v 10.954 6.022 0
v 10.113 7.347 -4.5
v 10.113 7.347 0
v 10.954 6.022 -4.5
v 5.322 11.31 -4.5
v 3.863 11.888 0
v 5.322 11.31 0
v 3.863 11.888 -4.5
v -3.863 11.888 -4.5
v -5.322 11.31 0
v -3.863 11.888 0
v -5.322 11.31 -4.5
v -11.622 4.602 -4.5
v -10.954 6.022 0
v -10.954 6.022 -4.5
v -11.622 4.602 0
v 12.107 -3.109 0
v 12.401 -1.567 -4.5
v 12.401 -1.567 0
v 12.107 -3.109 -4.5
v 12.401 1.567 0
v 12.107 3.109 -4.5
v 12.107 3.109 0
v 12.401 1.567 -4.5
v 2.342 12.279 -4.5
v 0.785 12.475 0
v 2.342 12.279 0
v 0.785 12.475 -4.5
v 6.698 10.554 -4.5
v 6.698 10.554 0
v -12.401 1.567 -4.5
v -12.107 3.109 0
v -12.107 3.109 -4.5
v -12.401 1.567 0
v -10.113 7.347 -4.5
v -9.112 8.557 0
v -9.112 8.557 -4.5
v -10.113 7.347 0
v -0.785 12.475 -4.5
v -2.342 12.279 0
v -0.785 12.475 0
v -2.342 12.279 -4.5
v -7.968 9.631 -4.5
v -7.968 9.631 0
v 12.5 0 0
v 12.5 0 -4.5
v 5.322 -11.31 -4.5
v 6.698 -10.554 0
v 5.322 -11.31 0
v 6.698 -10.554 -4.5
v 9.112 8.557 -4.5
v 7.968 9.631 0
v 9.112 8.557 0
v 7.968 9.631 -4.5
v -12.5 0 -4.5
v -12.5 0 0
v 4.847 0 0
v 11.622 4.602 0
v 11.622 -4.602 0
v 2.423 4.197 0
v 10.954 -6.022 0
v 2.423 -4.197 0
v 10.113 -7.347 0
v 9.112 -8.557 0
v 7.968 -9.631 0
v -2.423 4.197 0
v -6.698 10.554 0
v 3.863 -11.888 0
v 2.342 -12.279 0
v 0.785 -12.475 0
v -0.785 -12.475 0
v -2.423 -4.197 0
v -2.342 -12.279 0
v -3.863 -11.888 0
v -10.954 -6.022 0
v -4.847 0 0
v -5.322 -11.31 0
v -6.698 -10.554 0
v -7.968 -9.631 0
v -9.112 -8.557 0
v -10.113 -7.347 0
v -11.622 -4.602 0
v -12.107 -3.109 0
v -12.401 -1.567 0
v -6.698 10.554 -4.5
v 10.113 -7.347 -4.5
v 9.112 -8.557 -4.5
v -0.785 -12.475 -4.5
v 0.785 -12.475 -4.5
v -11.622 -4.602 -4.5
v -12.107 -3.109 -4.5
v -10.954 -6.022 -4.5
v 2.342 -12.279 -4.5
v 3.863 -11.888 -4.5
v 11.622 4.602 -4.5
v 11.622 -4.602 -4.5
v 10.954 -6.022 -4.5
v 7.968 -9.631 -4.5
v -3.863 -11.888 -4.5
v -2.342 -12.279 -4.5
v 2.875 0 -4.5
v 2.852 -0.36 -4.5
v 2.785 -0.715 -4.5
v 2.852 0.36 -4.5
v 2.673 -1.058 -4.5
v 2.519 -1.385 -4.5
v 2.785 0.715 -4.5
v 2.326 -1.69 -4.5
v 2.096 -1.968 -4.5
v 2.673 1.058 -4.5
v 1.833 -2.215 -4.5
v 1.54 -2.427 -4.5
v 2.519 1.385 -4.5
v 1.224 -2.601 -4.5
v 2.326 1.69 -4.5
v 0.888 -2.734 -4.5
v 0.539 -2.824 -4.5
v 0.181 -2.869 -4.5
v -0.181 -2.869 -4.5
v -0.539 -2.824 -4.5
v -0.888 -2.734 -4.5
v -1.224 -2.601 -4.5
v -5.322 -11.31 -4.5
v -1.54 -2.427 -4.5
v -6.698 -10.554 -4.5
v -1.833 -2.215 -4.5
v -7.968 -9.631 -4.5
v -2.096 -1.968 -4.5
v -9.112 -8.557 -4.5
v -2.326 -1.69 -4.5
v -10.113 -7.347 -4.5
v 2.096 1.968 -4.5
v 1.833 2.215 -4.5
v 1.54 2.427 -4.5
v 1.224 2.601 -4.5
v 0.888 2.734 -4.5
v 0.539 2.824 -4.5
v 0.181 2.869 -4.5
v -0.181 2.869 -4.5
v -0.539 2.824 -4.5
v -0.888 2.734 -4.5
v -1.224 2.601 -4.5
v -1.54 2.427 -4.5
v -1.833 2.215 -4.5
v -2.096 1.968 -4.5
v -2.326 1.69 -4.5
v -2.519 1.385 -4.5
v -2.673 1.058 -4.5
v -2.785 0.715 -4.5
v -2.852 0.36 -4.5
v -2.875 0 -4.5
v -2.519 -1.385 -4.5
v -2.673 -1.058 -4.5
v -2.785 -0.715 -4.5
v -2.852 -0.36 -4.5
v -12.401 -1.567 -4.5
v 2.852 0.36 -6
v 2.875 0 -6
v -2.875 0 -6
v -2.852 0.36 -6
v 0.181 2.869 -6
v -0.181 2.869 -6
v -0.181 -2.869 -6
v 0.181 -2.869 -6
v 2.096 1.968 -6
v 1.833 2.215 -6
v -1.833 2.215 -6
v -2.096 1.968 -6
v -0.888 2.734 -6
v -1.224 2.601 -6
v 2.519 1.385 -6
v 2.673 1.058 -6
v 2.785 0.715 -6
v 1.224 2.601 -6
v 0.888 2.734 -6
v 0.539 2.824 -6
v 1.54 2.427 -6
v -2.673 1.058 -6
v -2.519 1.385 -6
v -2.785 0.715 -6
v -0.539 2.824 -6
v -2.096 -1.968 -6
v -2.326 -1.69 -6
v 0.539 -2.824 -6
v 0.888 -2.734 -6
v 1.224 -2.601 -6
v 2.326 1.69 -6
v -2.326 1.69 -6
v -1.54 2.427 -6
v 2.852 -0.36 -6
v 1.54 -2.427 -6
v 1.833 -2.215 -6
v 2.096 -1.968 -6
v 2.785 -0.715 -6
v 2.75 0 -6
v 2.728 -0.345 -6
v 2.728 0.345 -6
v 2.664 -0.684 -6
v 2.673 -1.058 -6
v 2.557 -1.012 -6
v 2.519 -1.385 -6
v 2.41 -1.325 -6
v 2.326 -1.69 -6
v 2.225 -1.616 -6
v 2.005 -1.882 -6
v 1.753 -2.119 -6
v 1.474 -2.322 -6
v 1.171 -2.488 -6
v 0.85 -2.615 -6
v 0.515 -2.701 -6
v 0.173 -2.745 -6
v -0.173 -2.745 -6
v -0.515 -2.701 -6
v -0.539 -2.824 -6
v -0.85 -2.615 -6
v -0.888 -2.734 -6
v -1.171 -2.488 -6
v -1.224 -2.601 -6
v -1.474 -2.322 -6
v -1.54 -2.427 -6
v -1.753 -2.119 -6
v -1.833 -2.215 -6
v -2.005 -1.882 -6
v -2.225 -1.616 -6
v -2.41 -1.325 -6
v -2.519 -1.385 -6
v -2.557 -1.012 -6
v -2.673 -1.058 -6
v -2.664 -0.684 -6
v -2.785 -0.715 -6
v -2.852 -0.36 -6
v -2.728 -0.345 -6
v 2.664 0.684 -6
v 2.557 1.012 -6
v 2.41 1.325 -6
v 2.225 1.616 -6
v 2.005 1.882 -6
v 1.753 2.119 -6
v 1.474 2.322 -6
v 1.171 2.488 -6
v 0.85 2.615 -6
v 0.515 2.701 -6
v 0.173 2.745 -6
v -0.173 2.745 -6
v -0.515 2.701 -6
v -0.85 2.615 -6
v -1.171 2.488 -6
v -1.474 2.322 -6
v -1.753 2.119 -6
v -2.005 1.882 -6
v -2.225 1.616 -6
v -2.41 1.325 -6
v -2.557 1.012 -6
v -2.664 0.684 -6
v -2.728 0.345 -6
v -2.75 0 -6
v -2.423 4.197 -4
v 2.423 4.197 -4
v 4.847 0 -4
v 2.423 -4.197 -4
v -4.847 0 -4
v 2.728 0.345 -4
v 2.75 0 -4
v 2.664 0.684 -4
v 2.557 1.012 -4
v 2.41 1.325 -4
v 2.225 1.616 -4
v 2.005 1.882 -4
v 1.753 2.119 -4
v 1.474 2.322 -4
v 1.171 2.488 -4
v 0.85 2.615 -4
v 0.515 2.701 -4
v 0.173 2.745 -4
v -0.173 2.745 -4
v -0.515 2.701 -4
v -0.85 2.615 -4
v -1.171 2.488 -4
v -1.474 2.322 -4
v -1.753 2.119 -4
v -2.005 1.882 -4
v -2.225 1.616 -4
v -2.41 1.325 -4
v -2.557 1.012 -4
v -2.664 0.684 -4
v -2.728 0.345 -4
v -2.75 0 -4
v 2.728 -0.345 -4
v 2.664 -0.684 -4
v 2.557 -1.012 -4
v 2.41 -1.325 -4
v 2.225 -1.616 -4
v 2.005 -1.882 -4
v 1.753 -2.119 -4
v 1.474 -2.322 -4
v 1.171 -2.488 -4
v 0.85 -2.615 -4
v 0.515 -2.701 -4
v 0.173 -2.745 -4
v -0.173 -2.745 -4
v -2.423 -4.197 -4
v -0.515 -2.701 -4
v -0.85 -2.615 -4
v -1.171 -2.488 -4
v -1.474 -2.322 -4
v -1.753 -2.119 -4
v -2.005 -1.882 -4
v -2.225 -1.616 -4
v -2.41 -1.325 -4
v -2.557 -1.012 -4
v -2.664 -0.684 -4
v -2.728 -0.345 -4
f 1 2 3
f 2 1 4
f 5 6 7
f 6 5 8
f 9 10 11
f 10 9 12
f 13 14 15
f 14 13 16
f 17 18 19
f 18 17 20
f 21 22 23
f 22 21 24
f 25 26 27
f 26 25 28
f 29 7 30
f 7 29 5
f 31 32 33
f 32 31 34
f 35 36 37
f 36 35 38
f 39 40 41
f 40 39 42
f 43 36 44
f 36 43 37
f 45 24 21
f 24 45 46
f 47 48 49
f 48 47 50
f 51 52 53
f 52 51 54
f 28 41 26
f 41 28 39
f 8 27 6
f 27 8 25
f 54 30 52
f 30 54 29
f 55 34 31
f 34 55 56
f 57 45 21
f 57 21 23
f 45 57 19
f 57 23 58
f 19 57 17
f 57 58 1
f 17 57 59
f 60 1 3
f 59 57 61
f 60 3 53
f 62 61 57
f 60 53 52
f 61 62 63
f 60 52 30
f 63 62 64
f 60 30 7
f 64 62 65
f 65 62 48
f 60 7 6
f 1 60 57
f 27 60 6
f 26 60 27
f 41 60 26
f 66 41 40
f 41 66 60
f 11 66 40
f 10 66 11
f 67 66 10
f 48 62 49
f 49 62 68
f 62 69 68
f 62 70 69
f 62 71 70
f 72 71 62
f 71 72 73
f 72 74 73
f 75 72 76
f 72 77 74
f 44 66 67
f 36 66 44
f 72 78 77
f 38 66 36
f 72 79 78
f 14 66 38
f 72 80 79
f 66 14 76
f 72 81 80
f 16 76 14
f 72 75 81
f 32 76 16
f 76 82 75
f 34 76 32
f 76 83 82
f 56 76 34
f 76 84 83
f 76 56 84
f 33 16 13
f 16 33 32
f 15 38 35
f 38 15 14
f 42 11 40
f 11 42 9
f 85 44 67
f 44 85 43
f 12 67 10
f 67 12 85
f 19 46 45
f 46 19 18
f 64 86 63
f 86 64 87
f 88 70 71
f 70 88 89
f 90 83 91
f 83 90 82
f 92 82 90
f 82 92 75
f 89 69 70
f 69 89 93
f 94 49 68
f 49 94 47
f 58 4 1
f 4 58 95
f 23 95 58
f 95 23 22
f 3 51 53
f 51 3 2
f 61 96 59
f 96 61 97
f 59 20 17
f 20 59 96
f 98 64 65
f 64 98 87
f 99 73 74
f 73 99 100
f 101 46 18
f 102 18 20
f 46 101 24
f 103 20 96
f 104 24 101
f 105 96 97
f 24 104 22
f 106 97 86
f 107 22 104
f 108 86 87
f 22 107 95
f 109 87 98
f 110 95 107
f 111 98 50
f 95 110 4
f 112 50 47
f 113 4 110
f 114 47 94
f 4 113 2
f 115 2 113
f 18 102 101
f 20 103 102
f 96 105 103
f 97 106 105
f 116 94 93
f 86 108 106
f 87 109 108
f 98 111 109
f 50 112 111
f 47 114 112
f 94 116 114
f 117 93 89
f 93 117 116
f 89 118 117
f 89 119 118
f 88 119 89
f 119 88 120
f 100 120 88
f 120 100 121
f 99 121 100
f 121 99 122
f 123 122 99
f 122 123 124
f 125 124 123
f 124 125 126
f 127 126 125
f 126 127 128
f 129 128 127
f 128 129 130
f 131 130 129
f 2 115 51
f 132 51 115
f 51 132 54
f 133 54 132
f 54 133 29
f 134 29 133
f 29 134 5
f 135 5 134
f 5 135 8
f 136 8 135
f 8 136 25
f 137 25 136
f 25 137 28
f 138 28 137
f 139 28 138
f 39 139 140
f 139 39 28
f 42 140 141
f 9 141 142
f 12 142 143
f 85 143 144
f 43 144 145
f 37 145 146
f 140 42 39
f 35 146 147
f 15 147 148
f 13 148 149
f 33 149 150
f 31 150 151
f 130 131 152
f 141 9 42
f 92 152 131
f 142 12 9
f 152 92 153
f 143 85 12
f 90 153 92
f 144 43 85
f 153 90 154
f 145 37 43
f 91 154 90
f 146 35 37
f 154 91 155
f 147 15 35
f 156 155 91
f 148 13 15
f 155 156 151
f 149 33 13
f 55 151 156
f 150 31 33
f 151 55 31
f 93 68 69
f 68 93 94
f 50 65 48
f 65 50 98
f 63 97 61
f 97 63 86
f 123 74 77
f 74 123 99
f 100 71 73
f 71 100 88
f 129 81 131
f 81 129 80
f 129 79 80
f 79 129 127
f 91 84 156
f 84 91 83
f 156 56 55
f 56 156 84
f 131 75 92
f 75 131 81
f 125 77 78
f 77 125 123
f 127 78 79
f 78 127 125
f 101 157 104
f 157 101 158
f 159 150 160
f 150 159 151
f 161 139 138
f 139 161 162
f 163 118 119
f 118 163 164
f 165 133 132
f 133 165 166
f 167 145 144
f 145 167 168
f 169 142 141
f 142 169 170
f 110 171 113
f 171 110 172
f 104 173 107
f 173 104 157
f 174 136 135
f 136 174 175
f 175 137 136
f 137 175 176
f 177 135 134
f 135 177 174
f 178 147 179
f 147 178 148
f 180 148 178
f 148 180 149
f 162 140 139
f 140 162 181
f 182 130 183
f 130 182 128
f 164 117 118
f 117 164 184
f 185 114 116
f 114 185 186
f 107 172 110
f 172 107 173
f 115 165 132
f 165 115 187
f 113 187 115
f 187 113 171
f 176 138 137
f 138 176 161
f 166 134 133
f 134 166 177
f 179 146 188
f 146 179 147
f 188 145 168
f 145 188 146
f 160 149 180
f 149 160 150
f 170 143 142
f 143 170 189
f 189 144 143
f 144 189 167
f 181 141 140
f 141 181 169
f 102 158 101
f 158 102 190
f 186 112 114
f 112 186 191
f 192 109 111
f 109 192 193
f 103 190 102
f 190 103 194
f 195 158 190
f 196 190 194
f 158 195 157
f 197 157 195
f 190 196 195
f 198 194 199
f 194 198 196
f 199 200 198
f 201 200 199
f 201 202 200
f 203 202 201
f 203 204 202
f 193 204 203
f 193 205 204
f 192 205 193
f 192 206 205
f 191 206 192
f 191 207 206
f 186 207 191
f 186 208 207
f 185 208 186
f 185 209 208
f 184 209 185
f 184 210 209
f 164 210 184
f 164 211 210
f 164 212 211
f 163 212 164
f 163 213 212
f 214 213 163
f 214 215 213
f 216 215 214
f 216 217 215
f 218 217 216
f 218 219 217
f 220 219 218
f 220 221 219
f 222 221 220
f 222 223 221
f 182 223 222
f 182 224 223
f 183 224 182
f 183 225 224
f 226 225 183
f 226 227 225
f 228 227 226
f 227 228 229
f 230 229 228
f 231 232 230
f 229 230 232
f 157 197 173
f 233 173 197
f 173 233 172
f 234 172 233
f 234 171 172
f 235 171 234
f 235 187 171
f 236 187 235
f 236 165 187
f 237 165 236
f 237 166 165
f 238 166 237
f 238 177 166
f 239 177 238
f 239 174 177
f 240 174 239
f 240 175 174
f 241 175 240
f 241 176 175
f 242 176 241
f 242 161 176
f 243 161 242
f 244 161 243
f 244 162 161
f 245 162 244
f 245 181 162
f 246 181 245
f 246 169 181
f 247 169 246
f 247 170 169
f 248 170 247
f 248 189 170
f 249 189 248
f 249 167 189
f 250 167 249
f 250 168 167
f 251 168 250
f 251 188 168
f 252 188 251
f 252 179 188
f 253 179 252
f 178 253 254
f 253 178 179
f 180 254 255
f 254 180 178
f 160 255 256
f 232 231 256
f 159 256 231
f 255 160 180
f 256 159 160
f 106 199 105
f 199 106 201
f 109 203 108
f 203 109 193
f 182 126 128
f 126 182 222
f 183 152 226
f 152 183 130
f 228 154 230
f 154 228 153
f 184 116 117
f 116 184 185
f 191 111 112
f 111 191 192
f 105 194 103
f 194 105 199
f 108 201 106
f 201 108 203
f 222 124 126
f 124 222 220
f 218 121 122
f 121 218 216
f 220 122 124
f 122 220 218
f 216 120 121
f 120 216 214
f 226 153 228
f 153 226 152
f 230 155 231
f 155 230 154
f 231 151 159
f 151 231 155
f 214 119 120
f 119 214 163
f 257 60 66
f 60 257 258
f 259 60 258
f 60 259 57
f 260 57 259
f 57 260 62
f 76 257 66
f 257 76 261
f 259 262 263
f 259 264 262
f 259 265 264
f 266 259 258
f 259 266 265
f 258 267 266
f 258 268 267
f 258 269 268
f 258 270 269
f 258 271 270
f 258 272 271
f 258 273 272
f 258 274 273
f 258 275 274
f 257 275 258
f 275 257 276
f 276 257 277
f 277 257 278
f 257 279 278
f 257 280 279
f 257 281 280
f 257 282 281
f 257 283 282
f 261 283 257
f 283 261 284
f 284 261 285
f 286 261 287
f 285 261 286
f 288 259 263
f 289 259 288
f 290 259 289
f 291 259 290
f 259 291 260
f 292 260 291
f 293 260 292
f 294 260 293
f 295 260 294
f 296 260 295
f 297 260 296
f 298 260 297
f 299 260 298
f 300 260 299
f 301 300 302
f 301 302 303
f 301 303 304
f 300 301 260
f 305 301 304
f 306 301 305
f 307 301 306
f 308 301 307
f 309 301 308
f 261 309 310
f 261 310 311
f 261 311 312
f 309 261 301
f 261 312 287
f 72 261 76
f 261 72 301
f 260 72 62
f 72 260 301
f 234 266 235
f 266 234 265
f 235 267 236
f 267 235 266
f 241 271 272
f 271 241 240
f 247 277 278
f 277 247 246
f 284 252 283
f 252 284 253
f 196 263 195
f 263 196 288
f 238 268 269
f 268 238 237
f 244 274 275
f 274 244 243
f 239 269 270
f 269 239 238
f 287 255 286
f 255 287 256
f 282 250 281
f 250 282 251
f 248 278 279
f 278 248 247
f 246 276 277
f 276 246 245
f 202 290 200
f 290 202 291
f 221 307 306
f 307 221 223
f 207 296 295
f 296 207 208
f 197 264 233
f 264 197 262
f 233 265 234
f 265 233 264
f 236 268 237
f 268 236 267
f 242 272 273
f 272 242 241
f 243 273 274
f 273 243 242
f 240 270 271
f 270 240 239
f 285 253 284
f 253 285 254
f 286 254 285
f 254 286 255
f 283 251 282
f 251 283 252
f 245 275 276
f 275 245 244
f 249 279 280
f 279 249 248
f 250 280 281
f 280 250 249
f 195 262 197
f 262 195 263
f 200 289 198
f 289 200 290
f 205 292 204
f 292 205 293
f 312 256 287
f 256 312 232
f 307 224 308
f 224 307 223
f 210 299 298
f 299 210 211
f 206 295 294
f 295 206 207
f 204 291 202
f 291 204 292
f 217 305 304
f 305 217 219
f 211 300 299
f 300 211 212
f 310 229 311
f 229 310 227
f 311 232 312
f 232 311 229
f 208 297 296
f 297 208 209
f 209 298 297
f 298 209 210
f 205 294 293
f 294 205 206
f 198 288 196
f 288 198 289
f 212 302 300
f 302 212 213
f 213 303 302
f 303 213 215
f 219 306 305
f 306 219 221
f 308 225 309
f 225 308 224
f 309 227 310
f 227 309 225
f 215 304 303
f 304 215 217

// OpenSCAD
$fn = 50;

difference() {
	union() {
		translate(v = [0, 0, -4.5]) {
			cylinder(h = 4.5, r = 12.5);
		}
		#translate(v = [0, 0, -6.0]) {
			cylinder(h = 6, r = 2.875);
		}
	}
	union() {
		translate(v = [0, 0, 0]) {
			rotate(a = [0, 0, 0]) {
				difference() {
					union() {
						translate(v = [0, 0, -4]) {
							linear_extrude(height = 4) {
								polygon(points = [[4.8468, 0.0], [2.4234000000000004, 4.197451927062417], [-2.423399999999999, 4.197451927062417], [-4.8468, 5.935618106107392e-16], [-2.423400000000002, -4.197451927062416], [2.423399999999997, -4.197451927062419]]);
							}
						}
					}
					union();
				}
			}
		}
		#translate(v = [0, 0, -100.0]) {
			cylinder(h = 200, r = 2.75);
		}
	}
}
